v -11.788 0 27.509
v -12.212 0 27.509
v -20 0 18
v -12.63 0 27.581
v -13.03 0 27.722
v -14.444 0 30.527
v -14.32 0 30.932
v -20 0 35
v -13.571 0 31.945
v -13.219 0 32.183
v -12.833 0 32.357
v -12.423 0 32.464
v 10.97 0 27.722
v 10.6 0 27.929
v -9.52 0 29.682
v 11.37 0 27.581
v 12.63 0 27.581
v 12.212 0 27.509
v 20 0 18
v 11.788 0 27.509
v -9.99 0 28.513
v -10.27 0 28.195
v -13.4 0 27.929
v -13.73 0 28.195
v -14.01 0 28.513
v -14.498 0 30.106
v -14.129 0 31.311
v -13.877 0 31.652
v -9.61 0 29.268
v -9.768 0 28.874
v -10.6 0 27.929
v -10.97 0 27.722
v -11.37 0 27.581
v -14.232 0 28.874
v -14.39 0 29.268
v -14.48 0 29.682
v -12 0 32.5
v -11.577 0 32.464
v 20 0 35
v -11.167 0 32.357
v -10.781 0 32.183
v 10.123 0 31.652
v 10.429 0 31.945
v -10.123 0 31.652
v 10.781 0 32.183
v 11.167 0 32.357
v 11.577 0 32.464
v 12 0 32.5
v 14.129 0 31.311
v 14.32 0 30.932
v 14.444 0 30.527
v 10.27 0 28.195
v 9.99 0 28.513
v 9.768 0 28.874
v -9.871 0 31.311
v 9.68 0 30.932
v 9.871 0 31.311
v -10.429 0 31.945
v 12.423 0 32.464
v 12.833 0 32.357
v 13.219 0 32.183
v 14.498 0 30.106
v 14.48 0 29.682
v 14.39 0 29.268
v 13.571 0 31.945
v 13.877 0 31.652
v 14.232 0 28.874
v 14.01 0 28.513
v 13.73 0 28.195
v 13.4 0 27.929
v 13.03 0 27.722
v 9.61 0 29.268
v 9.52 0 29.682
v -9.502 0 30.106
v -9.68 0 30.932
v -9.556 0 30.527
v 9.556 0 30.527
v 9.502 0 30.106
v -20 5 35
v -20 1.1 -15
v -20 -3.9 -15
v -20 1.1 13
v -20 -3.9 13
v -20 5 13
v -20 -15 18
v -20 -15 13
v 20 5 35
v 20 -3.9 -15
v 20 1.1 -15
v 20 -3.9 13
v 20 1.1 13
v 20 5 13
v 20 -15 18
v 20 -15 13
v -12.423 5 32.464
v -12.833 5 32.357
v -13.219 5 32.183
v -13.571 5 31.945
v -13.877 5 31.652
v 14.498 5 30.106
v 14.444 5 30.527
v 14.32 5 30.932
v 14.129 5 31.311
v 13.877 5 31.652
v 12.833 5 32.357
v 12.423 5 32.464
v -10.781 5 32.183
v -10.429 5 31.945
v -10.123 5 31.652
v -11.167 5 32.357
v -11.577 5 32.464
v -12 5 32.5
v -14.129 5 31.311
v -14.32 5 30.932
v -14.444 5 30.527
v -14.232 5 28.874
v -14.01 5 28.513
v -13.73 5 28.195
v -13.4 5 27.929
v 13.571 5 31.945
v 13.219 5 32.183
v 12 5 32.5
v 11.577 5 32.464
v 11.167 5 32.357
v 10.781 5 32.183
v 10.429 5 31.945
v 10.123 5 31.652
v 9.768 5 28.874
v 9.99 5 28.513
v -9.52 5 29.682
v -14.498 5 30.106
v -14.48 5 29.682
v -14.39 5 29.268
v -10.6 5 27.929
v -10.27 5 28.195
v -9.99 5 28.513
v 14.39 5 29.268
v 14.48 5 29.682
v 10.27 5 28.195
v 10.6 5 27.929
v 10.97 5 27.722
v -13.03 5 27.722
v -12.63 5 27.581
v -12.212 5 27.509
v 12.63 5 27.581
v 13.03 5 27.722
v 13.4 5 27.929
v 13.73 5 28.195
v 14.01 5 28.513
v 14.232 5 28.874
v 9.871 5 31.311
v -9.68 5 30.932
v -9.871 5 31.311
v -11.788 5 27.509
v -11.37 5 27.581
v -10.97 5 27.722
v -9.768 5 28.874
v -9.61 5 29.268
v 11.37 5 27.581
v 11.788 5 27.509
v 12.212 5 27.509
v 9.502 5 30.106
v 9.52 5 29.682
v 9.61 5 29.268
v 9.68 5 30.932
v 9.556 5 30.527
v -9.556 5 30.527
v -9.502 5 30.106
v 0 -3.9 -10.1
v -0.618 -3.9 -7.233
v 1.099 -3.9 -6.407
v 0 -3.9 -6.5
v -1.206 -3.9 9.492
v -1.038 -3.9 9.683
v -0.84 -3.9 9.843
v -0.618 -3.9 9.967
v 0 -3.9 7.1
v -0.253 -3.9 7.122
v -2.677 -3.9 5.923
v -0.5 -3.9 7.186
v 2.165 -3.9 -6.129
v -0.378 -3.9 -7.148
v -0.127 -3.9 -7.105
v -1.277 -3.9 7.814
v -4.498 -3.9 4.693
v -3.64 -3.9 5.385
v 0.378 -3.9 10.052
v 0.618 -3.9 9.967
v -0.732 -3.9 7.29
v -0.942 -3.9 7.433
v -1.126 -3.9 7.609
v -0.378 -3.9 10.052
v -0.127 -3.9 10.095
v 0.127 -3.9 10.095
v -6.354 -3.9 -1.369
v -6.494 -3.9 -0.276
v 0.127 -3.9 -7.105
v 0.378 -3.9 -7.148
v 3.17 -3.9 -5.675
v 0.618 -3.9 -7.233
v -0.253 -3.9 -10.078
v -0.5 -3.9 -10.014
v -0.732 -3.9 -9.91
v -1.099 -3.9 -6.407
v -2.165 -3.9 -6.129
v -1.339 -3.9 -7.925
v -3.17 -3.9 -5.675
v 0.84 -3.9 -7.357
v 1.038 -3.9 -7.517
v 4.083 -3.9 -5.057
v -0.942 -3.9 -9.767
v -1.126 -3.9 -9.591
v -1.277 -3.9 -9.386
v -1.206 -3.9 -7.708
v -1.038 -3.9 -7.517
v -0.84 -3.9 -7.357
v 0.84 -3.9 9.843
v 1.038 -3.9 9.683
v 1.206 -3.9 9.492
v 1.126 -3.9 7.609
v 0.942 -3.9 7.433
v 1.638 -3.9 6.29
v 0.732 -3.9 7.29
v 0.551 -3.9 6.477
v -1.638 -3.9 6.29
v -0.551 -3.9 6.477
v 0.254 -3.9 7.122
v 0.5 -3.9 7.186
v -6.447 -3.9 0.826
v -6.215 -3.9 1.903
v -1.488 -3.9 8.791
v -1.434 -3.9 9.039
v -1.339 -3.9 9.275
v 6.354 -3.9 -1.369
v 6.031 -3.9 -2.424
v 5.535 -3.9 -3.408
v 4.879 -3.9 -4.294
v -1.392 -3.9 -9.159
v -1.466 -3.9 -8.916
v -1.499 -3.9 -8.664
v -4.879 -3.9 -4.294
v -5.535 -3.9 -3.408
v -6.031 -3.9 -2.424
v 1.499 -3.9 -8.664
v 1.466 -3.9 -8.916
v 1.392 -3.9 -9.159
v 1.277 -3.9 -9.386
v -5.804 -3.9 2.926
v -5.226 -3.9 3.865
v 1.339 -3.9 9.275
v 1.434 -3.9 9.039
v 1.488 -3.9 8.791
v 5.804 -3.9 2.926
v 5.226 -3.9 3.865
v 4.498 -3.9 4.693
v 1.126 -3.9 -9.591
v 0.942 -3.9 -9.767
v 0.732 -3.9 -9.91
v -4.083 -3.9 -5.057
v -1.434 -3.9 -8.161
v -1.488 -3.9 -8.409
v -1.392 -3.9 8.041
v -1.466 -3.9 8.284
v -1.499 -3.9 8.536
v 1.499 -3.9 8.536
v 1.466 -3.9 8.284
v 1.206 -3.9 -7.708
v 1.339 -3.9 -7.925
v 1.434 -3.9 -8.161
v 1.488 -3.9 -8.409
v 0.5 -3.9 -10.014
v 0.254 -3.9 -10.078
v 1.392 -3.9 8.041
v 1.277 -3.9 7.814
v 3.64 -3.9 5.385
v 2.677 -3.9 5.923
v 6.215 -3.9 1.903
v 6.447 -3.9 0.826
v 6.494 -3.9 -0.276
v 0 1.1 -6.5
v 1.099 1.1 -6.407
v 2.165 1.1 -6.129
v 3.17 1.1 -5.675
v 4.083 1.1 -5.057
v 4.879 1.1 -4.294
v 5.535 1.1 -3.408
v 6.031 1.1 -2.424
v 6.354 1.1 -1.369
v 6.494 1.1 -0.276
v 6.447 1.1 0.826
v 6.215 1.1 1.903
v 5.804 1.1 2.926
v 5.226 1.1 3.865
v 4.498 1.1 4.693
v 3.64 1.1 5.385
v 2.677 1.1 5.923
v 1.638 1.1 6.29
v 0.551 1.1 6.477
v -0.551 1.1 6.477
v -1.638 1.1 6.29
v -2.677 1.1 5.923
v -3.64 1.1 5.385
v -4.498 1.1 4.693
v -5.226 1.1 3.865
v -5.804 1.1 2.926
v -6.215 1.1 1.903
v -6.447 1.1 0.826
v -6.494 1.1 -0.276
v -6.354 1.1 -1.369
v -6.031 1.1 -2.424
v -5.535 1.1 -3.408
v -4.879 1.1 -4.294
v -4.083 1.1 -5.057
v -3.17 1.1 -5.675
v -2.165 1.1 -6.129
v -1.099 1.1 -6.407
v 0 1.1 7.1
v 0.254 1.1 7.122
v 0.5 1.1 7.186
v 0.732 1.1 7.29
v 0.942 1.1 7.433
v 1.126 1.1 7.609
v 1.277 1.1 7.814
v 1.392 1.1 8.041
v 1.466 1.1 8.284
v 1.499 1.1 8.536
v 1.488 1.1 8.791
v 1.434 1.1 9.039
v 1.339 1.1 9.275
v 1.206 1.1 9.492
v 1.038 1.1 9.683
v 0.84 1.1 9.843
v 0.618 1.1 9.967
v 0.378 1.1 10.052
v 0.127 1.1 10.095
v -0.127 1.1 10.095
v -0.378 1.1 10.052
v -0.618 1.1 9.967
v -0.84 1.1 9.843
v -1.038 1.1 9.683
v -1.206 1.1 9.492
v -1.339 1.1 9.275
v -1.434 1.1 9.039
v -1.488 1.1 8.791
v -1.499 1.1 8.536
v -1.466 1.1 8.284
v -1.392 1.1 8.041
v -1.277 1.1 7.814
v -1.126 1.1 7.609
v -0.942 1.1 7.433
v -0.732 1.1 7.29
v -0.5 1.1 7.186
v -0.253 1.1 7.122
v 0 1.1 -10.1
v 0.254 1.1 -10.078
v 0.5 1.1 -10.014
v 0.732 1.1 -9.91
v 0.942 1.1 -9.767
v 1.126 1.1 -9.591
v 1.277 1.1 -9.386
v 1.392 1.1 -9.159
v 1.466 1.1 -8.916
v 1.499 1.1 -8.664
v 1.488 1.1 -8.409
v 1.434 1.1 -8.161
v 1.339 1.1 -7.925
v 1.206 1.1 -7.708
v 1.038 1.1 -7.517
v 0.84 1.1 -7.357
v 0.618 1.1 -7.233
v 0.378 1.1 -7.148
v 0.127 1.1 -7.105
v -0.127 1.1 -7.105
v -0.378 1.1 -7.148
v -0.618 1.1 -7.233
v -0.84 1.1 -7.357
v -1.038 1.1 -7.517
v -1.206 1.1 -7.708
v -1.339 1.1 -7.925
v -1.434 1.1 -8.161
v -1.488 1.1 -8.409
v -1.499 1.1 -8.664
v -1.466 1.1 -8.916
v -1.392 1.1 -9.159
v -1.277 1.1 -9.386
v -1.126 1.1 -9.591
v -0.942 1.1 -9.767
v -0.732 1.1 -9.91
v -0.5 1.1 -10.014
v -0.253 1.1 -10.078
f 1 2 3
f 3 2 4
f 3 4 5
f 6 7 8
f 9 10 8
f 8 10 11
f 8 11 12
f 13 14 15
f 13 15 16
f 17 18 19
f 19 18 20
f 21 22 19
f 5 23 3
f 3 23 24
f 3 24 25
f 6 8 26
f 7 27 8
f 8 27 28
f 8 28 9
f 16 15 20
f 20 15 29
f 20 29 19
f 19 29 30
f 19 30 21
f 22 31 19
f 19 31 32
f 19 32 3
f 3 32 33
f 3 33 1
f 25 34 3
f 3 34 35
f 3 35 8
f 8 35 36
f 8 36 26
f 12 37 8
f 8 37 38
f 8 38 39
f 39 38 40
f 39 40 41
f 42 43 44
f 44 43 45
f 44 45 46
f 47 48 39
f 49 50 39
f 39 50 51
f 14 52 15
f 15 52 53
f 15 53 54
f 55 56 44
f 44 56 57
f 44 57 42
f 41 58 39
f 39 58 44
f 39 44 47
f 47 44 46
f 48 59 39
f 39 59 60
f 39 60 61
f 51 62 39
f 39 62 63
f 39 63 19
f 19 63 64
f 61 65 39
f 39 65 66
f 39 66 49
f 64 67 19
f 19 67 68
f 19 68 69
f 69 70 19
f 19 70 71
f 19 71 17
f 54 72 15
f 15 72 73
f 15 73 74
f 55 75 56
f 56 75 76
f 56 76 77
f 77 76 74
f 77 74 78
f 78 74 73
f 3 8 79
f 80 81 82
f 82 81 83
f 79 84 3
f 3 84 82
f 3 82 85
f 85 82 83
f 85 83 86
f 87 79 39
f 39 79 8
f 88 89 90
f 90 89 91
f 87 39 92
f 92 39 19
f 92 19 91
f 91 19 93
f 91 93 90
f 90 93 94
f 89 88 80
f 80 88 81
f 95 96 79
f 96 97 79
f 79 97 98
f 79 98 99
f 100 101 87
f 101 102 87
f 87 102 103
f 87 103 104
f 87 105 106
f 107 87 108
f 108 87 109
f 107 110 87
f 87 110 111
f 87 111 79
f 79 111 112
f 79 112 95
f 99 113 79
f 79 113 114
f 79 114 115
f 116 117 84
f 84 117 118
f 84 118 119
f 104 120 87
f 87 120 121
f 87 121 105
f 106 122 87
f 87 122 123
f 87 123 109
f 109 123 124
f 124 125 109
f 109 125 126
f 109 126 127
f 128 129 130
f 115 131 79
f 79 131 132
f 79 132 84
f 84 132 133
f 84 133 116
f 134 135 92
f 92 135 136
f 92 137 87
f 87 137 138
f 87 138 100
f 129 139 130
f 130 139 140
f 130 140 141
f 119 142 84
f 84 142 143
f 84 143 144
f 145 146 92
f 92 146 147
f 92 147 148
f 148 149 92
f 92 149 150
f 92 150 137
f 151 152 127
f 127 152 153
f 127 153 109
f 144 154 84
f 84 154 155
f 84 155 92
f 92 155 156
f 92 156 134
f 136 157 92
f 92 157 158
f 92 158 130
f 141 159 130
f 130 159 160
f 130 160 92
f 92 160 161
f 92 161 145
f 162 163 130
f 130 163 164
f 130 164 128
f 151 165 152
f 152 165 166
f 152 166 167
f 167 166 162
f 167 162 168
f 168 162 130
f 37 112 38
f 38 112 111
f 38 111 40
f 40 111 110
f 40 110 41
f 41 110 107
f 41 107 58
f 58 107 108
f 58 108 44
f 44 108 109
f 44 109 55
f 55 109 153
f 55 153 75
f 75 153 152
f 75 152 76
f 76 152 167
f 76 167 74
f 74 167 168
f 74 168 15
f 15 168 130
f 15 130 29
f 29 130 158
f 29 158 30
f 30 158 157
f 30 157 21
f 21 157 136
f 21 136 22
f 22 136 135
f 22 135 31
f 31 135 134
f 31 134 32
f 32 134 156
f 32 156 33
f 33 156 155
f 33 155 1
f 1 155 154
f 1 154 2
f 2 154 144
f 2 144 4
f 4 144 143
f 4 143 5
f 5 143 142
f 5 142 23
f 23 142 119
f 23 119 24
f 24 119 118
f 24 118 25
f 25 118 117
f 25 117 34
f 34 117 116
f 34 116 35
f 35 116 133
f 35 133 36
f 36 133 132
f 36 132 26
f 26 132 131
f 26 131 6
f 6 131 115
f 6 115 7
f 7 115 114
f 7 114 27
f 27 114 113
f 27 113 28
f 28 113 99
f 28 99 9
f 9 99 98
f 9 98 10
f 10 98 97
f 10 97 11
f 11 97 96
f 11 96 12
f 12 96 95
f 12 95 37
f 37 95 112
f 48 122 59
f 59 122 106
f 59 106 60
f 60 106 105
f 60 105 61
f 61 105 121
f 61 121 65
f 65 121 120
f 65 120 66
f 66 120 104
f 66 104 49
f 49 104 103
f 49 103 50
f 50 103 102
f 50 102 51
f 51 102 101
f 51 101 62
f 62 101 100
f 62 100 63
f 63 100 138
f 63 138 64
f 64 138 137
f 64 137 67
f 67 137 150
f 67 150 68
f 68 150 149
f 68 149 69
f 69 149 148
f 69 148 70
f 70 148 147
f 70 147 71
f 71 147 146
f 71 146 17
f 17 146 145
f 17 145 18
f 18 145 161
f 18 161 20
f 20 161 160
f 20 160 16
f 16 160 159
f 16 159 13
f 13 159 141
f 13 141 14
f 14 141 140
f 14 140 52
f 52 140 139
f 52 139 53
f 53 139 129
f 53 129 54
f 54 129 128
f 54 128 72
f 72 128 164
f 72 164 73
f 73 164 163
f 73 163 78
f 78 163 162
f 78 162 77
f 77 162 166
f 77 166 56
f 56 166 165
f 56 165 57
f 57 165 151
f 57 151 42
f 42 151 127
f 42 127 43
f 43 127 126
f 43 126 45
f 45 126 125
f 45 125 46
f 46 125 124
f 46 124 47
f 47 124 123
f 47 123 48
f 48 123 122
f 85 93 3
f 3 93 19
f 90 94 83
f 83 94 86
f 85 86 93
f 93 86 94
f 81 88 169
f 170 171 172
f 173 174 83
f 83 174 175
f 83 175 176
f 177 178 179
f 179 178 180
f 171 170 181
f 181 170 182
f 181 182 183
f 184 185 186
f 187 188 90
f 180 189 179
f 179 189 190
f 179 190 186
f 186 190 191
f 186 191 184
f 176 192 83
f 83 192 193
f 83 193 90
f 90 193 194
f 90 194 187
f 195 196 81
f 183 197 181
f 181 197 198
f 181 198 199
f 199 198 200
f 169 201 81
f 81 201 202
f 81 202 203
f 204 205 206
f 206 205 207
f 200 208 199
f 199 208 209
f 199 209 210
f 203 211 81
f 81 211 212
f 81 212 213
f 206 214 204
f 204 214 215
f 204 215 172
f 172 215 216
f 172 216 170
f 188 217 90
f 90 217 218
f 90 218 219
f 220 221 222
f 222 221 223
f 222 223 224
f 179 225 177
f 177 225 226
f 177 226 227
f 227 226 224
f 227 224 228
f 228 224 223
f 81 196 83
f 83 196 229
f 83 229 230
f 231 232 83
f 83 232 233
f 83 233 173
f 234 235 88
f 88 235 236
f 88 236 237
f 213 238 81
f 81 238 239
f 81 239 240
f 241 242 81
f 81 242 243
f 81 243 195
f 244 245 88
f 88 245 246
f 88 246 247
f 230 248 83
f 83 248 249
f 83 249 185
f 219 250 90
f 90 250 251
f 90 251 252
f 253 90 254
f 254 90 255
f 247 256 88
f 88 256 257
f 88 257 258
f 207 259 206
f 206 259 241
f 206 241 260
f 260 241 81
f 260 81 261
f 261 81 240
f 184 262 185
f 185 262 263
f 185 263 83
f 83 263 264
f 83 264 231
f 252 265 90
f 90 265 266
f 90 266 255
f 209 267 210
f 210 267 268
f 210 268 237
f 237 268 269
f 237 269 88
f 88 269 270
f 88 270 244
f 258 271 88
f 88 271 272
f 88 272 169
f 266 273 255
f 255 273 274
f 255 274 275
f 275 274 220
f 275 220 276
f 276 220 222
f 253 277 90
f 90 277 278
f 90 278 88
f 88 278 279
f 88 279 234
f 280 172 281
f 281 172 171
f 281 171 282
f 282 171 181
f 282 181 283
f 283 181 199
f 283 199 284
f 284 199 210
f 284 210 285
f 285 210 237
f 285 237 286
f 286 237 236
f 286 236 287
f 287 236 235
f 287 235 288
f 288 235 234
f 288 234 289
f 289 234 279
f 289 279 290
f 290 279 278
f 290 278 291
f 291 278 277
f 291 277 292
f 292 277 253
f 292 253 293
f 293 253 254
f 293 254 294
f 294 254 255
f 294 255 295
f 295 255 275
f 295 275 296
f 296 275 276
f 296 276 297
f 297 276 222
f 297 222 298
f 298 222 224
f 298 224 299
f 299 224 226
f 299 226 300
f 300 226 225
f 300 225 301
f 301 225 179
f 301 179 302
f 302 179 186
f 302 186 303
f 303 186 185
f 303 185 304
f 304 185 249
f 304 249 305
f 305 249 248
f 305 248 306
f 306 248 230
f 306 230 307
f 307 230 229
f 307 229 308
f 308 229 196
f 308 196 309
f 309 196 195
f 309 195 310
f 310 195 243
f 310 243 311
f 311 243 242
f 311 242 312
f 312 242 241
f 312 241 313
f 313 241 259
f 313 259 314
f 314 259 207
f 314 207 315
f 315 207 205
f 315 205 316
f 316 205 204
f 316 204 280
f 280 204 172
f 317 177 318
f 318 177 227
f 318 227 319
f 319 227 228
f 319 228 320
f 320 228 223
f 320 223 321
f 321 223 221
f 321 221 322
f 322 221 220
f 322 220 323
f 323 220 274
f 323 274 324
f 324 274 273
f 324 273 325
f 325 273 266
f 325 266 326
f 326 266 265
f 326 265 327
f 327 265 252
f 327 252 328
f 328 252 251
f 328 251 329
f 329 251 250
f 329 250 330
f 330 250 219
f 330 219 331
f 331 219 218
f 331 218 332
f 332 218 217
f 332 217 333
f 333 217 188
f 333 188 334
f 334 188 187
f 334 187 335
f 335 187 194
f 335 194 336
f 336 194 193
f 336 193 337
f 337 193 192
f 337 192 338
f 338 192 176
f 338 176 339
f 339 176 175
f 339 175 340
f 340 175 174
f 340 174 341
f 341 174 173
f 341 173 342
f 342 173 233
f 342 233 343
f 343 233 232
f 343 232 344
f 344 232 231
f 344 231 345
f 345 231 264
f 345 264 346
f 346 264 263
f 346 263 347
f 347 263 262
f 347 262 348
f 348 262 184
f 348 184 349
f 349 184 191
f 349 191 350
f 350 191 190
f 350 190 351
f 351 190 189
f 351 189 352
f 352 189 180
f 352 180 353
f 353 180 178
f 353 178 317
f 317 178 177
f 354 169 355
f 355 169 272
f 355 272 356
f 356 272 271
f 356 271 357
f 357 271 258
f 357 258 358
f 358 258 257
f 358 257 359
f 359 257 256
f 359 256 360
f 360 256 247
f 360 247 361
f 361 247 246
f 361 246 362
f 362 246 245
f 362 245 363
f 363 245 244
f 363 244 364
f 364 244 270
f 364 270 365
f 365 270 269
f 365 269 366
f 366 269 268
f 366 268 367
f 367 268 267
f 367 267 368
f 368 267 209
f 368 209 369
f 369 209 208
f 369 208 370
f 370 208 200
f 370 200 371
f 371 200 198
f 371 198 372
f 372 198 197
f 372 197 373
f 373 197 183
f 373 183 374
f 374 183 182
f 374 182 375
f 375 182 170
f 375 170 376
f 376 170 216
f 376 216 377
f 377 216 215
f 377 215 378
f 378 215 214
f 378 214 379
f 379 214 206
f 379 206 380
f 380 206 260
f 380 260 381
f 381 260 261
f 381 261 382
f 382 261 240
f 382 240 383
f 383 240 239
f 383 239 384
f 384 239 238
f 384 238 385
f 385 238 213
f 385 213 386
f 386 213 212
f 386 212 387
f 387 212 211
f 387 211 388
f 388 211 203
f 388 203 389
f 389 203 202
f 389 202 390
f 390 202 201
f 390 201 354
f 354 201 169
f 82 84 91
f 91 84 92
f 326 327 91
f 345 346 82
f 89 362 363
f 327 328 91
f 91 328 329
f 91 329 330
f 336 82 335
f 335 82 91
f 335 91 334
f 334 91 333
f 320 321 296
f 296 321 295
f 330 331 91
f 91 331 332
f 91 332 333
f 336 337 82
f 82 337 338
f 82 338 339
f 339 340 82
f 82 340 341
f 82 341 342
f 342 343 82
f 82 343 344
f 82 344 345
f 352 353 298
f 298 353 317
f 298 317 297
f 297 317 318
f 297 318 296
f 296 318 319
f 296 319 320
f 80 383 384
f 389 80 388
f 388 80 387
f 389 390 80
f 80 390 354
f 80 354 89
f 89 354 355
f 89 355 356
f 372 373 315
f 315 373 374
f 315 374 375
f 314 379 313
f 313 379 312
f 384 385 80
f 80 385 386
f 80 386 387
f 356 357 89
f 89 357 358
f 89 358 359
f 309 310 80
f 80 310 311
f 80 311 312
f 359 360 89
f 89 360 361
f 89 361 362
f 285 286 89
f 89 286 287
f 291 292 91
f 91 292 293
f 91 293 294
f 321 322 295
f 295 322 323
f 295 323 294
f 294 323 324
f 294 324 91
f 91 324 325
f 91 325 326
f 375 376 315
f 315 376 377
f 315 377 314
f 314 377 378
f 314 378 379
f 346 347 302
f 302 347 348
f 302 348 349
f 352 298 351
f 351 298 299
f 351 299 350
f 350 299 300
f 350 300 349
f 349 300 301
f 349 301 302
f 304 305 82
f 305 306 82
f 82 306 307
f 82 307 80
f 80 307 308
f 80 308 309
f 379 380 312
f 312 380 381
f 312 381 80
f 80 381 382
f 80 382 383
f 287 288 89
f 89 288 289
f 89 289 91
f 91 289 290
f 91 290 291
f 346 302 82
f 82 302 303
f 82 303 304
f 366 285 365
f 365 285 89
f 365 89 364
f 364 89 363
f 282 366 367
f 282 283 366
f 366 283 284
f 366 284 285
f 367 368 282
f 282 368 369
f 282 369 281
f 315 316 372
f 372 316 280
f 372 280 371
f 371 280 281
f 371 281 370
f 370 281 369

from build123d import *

# Parameters (mm, degrees)
SKETCH3_W               = 40
SKETCH3_H               = 50
BOSS_EXTRUDE1_DEPTH     = 5
SKETCH6_R               = 2.5
CUT_EXTRUDE6_DEPTH      = 41.620192023
SKETCH7_W               = 40
SKETCH7_H               = 5
BOSS_EXTRUDE2_DEPTH     = 15
SKETCH8_W               = 40
SKETCH8_H               = 28
BOSS_EXTRUDE3_DEPTH     = 3.9
CUT_EXTRUDE3_DEPTH      = 44.011626335
CUT_EXTRUDE3_DEPTH_BACK = 44.011626335
SKETCH1_R               = 6.5
SKETCH1_R_2             = 1.5
CUT_EXTRUDE7_REACH      = 57.227
SKETCH9_W               = 28
SKETCH9_H               = 3.9


with BuildPart() as part:
    # Sketch3 → Boss-Extrude1 (new body)
    with BuildSketch(Plane(origin=(0, 0, 0), x_dir=(1, 0, 0), z_dir=(0, 1, 0))):
        with Locations((0, -10)):
            Rectangle(SKETCH3_W, SKETCH3_H)
    extrude(amount=BOSS_EXTRUDE1_DEPTH)

    # Sketch6 → Cut-Extrude6 (cut, through all)
    with BuildSketch(Plane(origin=(0, 5, 0), x_dir=(1, 0, 0), z_dir=(0, 1, 0))):
        with Locations(Location((-12, -30, 0), (0, 0, 270))):
            Circle(SKETCH6_R)
        with Locations(Location((12, -30, 0), (0, 0, 270))):
            Circle(SKETCH6_R)
    extrude(amount=-CUT_EXTRUDE6_DEPTH, mode=Mode.SUBTRACT)

    # Sketch7 → Boss-Extrude2 (add)
    with BuildSketch(Plane.XZ):
        with Locations((0, 15.5)):
            Rectangle(SKETCH7_W, SKETCH7_H)
    extrude(amount=BOSS_EXTRUDE2_DEPTH)

    # Sketch8 → Boss-Extrude3 (add)
    with BuildSketch(Plane.XZ):
        with Locations((0, -1)):
            Rectangle(SKETCH8_W, SKETCH8_H)
    extrude(amount=BOSS_EXTRUDE3_DEPTH)

    # Sketch1 → Cut-Extrude3 (cut, two sides: drawn at the far end of the back side and taken through both)
    with BuildSketch(Plane(origin=(0, 0, 0), x_dir=(1, 0, 0), z_dir=(0, 1, 0)).offset(-CUT_EXTRUDE3_DEPTH_BACK)):
        with Locations(Location((0, 0, 0), (0, 0, 90))):
            Circle(SKETCH1_R)
        with Locations(Location((0, 8.6, 0), (0, 0, 90))):
            Circle(SKETCH1_R_2)
        with Locations(Location((0, -8.6, 0), (0, 0, 90))):
            Circle(SKETCH1_R_2)
    extrude(amount=CUT_EXTRUDE3_DEPTH + CUT_EXTRUDE3_DEPTH_BACK, mode=Mode.SUBTRACT)

    # Cut-Extrude7: up to this face of the body (flat: up to its plane)
    cut_extrude7_end = Plane(part.part.faces().sort_by_distance((20, -0.346476278, 8.183555965))[0])
    # Sketch9 → Cut-Extrude7 (cut, up to the picked face)
    with BuildSketch(Plane.ZY.offset(20), mode=Mode.PRIVATE) as cut_extrude7_sk1:
        with Locations((-1, 3.05)):
            Rectangle(SKETCH9_W, SKETCH9_H)
    cut_extrude7_tool1 = split(extrude(cut_extrude7_sk1.sketch, amount=-CUT_EXTRUDE7_REACH, mode=Mode.PRIVATE), bisect_by=cut_extrude7_end, keep=Keep.BOTH, mode=Mode.PRIVATE)
    add(cut_extrude7_tool1.solids().sort_by(Axis((-20, 3.05, -1), (1, 0, 0)))[0], mode=Mode.SUBTRACT)


solid = part.part
